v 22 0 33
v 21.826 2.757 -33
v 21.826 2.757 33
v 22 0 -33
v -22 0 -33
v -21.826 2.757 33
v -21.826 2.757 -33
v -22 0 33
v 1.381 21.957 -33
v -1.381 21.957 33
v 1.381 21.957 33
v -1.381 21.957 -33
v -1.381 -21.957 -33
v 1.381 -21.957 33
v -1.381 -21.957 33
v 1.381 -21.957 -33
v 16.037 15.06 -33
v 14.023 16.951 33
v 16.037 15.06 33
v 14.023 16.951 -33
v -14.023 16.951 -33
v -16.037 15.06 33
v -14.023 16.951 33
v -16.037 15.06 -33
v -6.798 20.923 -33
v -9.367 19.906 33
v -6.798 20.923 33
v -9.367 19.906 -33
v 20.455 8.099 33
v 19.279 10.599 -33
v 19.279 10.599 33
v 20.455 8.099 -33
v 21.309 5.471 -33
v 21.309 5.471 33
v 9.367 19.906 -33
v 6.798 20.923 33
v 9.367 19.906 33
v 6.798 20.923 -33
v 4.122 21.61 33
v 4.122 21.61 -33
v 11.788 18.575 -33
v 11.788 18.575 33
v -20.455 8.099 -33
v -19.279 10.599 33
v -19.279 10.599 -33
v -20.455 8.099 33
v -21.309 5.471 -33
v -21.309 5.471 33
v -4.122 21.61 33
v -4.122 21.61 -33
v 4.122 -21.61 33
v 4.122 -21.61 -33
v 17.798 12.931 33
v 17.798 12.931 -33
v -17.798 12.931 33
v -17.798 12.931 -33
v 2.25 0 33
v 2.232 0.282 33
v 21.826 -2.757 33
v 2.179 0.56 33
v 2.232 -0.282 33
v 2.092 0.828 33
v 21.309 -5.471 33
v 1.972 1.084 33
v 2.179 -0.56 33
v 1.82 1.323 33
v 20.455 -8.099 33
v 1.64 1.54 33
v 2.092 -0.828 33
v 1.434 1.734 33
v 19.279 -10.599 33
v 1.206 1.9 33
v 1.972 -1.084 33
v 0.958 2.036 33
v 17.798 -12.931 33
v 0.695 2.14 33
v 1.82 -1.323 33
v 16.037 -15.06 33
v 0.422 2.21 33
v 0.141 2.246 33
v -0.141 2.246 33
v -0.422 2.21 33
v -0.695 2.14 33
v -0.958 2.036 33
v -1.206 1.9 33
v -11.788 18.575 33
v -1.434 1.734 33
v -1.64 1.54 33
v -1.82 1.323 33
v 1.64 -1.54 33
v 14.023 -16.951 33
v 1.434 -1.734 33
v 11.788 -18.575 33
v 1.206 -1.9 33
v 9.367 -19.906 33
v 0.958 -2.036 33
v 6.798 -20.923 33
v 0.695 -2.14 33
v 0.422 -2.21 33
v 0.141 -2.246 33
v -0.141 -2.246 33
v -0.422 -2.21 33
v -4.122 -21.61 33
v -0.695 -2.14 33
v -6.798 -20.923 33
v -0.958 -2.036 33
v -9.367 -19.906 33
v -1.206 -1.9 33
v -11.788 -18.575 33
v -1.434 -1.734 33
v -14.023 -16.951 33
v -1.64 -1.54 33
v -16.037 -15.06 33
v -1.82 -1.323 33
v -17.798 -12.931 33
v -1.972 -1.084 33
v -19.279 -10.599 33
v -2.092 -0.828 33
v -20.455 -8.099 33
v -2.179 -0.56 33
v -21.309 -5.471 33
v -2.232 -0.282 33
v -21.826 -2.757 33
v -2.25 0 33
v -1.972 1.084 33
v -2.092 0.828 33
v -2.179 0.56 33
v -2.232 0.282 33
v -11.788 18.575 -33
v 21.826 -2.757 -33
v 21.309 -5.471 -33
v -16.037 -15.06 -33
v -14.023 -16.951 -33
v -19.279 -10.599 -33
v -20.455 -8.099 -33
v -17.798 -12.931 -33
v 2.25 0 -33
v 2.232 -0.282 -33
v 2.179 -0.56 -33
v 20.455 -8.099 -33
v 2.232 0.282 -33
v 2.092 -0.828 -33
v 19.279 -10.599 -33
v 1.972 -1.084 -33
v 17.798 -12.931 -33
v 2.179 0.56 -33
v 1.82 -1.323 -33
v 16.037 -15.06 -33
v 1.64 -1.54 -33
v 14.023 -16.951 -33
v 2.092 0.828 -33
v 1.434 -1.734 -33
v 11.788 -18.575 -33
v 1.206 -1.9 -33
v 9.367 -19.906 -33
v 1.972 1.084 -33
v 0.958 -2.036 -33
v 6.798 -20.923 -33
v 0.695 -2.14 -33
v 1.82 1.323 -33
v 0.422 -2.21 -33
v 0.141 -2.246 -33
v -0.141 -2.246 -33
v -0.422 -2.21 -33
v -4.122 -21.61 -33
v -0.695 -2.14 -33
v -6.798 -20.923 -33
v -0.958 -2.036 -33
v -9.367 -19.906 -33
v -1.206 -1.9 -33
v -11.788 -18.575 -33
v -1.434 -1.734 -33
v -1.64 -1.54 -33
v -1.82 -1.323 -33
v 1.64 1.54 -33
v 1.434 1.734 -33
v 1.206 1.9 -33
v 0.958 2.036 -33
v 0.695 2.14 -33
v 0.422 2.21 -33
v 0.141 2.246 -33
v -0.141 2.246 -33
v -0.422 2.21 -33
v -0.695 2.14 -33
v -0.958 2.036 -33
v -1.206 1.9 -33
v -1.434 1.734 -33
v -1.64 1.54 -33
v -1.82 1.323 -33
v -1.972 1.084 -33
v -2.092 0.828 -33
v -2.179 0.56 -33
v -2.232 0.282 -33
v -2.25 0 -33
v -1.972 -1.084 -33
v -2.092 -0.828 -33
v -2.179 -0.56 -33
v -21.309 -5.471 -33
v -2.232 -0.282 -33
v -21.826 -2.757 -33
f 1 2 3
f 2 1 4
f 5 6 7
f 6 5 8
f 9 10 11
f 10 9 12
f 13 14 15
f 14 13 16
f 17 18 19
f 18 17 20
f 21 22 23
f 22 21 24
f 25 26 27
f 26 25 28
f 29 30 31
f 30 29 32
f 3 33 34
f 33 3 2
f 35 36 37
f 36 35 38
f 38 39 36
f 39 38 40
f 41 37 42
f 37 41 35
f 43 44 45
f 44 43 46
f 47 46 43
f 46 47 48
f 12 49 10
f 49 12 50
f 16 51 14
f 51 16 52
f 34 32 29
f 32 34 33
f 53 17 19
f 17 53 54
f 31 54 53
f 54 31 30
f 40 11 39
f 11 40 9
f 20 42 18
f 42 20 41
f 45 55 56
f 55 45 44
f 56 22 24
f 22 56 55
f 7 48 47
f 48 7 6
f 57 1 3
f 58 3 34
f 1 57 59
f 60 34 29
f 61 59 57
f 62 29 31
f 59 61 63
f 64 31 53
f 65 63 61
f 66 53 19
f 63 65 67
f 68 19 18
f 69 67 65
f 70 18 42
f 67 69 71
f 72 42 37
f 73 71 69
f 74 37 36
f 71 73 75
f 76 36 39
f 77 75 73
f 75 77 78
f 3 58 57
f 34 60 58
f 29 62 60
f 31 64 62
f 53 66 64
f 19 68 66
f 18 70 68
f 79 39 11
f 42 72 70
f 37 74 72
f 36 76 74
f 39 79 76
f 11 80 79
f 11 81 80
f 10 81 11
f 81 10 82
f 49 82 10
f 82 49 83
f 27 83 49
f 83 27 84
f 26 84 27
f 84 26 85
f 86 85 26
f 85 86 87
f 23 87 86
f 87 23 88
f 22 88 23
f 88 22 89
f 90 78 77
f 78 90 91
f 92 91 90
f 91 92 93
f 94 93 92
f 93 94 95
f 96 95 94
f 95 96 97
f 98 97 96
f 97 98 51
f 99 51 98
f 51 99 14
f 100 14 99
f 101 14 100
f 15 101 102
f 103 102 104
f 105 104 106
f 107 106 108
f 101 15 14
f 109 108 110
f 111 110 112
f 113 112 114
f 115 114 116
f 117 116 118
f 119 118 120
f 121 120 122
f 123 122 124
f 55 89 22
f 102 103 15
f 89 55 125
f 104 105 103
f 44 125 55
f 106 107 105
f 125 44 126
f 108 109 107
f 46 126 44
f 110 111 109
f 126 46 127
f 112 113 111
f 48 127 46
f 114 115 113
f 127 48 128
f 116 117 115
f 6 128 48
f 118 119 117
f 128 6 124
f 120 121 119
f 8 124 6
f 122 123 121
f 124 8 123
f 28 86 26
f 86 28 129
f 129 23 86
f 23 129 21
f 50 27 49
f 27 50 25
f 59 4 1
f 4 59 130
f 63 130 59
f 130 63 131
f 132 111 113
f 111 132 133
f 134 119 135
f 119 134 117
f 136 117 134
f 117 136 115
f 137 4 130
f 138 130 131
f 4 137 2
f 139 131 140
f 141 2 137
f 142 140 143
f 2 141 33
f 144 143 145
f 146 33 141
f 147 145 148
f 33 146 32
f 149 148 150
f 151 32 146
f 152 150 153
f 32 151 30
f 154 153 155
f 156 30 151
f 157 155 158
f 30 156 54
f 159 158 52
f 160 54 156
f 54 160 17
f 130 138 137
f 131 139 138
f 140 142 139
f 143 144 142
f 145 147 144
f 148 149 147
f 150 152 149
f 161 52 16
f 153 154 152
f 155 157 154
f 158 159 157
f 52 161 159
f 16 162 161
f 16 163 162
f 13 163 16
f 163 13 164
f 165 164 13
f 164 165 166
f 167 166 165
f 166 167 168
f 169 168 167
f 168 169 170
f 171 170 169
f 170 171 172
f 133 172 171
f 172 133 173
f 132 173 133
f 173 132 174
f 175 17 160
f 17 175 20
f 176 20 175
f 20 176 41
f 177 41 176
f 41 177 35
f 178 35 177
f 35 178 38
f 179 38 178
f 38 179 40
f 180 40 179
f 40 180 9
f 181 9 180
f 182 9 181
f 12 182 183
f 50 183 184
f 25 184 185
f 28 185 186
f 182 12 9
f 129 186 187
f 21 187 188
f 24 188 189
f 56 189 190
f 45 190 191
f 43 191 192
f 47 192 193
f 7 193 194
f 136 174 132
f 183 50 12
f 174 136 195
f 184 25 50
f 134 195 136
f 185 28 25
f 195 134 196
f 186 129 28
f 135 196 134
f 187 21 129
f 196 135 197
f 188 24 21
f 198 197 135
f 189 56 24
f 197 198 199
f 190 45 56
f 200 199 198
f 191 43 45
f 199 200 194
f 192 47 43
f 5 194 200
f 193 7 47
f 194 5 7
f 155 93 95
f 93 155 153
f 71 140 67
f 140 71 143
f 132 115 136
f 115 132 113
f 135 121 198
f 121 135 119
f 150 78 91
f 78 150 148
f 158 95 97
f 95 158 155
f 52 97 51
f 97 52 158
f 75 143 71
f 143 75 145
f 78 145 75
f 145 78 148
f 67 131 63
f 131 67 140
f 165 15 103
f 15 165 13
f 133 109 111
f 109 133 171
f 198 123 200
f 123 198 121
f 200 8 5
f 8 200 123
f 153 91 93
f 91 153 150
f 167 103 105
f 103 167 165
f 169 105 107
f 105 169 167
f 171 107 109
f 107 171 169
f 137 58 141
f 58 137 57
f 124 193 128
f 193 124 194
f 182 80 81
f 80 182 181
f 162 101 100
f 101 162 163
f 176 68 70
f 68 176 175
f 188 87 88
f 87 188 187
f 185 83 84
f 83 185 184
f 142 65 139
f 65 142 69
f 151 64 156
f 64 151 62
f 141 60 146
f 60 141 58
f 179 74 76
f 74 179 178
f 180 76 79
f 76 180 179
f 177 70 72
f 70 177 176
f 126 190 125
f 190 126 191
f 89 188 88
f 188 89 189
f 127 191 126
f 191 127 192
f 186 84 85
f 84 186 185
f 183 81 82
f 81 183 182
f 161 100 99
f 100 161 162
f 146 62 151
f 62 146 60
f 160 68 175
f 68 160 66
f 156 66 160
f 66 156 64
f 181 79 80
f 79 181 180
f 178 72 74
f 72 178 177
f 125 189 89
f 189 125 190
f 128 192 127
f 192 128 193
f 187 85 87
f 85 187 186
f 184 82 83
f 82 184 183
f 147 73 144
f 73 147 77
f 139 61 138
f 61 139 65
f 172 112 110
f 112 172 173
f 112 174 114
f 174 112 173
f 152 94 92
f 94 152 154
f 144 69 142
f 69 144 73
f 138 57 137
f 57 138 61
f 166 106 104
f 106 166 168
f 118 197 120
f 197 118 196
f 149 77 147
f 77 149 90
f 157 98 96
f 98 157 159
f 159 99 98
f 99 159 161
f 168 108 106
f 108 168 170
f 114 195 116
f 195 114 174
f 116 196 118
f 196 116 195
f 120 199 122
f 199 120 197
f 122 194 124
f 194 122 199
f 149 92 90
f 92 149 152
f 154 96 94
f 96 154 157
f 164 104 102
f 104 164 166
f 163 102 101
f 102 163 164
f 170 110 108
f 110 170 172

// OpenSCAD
$fn = 50;


difference() {
	union() {
		translate(v = [0, 0, -33.0000000000]) {
			cylinder(h = 66, r = 22.0000000000);
		}
	}
	union() {
		translate(v = [0, 0, -100.0000000000]) {
			cylinder(h = 200, r = 2.2500000000);
		}
	}
}
